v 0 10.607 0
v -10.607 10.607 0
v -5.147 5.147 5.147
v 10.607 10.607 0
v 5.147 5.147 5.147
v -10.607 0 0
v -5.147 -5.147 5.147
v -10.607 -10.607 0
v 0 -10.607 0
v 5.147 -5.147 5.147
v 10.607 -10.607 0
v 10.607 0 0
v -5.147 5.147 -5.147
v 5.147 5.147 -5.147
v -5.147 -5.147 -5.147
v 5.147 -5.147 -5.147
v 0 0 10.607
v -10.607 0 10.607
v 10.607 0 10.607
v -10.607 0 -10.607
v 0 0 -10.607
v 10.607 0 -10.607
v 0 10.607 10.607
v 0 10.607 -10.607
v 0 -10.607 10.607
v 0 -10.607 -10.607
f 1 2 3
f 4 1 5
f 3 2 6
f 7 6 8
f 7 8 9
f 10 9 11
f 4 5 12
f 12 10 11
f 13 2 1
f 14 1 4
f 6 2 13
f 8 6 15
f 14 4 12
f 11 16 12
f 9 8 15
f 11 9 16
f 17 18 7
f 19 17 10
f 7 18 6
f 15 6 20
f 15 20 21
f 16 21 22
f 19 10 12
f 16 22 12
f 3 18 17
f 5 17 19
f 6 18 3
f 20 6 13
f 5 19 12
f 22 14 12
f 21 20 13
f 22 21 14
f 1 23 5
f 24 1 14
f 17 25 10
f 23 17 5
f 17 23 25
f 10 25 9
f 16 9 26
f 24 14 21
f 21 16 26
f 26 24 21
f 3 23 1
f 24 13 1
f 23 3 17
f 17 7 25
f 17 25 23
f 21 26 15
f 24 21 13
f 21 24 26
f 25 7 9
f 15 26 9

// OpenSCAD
// stellated rhombic dodecahedron

h=10;
b=15;

module diamond(h, b){
   rotate([0, 0, 45]) {
      cylinder(h, b, 0, $fn=4);
      translate([0, 0, -h]) cylinder(h, 0, b, $fn=4);
   }
}

module srd(h, b){
   diamond(h, b);
   rotate([90, 0, 0]) diamond(h, b);
   rotate([0, 90, 0]) diamond(h, b);
}

srd(h, b);
